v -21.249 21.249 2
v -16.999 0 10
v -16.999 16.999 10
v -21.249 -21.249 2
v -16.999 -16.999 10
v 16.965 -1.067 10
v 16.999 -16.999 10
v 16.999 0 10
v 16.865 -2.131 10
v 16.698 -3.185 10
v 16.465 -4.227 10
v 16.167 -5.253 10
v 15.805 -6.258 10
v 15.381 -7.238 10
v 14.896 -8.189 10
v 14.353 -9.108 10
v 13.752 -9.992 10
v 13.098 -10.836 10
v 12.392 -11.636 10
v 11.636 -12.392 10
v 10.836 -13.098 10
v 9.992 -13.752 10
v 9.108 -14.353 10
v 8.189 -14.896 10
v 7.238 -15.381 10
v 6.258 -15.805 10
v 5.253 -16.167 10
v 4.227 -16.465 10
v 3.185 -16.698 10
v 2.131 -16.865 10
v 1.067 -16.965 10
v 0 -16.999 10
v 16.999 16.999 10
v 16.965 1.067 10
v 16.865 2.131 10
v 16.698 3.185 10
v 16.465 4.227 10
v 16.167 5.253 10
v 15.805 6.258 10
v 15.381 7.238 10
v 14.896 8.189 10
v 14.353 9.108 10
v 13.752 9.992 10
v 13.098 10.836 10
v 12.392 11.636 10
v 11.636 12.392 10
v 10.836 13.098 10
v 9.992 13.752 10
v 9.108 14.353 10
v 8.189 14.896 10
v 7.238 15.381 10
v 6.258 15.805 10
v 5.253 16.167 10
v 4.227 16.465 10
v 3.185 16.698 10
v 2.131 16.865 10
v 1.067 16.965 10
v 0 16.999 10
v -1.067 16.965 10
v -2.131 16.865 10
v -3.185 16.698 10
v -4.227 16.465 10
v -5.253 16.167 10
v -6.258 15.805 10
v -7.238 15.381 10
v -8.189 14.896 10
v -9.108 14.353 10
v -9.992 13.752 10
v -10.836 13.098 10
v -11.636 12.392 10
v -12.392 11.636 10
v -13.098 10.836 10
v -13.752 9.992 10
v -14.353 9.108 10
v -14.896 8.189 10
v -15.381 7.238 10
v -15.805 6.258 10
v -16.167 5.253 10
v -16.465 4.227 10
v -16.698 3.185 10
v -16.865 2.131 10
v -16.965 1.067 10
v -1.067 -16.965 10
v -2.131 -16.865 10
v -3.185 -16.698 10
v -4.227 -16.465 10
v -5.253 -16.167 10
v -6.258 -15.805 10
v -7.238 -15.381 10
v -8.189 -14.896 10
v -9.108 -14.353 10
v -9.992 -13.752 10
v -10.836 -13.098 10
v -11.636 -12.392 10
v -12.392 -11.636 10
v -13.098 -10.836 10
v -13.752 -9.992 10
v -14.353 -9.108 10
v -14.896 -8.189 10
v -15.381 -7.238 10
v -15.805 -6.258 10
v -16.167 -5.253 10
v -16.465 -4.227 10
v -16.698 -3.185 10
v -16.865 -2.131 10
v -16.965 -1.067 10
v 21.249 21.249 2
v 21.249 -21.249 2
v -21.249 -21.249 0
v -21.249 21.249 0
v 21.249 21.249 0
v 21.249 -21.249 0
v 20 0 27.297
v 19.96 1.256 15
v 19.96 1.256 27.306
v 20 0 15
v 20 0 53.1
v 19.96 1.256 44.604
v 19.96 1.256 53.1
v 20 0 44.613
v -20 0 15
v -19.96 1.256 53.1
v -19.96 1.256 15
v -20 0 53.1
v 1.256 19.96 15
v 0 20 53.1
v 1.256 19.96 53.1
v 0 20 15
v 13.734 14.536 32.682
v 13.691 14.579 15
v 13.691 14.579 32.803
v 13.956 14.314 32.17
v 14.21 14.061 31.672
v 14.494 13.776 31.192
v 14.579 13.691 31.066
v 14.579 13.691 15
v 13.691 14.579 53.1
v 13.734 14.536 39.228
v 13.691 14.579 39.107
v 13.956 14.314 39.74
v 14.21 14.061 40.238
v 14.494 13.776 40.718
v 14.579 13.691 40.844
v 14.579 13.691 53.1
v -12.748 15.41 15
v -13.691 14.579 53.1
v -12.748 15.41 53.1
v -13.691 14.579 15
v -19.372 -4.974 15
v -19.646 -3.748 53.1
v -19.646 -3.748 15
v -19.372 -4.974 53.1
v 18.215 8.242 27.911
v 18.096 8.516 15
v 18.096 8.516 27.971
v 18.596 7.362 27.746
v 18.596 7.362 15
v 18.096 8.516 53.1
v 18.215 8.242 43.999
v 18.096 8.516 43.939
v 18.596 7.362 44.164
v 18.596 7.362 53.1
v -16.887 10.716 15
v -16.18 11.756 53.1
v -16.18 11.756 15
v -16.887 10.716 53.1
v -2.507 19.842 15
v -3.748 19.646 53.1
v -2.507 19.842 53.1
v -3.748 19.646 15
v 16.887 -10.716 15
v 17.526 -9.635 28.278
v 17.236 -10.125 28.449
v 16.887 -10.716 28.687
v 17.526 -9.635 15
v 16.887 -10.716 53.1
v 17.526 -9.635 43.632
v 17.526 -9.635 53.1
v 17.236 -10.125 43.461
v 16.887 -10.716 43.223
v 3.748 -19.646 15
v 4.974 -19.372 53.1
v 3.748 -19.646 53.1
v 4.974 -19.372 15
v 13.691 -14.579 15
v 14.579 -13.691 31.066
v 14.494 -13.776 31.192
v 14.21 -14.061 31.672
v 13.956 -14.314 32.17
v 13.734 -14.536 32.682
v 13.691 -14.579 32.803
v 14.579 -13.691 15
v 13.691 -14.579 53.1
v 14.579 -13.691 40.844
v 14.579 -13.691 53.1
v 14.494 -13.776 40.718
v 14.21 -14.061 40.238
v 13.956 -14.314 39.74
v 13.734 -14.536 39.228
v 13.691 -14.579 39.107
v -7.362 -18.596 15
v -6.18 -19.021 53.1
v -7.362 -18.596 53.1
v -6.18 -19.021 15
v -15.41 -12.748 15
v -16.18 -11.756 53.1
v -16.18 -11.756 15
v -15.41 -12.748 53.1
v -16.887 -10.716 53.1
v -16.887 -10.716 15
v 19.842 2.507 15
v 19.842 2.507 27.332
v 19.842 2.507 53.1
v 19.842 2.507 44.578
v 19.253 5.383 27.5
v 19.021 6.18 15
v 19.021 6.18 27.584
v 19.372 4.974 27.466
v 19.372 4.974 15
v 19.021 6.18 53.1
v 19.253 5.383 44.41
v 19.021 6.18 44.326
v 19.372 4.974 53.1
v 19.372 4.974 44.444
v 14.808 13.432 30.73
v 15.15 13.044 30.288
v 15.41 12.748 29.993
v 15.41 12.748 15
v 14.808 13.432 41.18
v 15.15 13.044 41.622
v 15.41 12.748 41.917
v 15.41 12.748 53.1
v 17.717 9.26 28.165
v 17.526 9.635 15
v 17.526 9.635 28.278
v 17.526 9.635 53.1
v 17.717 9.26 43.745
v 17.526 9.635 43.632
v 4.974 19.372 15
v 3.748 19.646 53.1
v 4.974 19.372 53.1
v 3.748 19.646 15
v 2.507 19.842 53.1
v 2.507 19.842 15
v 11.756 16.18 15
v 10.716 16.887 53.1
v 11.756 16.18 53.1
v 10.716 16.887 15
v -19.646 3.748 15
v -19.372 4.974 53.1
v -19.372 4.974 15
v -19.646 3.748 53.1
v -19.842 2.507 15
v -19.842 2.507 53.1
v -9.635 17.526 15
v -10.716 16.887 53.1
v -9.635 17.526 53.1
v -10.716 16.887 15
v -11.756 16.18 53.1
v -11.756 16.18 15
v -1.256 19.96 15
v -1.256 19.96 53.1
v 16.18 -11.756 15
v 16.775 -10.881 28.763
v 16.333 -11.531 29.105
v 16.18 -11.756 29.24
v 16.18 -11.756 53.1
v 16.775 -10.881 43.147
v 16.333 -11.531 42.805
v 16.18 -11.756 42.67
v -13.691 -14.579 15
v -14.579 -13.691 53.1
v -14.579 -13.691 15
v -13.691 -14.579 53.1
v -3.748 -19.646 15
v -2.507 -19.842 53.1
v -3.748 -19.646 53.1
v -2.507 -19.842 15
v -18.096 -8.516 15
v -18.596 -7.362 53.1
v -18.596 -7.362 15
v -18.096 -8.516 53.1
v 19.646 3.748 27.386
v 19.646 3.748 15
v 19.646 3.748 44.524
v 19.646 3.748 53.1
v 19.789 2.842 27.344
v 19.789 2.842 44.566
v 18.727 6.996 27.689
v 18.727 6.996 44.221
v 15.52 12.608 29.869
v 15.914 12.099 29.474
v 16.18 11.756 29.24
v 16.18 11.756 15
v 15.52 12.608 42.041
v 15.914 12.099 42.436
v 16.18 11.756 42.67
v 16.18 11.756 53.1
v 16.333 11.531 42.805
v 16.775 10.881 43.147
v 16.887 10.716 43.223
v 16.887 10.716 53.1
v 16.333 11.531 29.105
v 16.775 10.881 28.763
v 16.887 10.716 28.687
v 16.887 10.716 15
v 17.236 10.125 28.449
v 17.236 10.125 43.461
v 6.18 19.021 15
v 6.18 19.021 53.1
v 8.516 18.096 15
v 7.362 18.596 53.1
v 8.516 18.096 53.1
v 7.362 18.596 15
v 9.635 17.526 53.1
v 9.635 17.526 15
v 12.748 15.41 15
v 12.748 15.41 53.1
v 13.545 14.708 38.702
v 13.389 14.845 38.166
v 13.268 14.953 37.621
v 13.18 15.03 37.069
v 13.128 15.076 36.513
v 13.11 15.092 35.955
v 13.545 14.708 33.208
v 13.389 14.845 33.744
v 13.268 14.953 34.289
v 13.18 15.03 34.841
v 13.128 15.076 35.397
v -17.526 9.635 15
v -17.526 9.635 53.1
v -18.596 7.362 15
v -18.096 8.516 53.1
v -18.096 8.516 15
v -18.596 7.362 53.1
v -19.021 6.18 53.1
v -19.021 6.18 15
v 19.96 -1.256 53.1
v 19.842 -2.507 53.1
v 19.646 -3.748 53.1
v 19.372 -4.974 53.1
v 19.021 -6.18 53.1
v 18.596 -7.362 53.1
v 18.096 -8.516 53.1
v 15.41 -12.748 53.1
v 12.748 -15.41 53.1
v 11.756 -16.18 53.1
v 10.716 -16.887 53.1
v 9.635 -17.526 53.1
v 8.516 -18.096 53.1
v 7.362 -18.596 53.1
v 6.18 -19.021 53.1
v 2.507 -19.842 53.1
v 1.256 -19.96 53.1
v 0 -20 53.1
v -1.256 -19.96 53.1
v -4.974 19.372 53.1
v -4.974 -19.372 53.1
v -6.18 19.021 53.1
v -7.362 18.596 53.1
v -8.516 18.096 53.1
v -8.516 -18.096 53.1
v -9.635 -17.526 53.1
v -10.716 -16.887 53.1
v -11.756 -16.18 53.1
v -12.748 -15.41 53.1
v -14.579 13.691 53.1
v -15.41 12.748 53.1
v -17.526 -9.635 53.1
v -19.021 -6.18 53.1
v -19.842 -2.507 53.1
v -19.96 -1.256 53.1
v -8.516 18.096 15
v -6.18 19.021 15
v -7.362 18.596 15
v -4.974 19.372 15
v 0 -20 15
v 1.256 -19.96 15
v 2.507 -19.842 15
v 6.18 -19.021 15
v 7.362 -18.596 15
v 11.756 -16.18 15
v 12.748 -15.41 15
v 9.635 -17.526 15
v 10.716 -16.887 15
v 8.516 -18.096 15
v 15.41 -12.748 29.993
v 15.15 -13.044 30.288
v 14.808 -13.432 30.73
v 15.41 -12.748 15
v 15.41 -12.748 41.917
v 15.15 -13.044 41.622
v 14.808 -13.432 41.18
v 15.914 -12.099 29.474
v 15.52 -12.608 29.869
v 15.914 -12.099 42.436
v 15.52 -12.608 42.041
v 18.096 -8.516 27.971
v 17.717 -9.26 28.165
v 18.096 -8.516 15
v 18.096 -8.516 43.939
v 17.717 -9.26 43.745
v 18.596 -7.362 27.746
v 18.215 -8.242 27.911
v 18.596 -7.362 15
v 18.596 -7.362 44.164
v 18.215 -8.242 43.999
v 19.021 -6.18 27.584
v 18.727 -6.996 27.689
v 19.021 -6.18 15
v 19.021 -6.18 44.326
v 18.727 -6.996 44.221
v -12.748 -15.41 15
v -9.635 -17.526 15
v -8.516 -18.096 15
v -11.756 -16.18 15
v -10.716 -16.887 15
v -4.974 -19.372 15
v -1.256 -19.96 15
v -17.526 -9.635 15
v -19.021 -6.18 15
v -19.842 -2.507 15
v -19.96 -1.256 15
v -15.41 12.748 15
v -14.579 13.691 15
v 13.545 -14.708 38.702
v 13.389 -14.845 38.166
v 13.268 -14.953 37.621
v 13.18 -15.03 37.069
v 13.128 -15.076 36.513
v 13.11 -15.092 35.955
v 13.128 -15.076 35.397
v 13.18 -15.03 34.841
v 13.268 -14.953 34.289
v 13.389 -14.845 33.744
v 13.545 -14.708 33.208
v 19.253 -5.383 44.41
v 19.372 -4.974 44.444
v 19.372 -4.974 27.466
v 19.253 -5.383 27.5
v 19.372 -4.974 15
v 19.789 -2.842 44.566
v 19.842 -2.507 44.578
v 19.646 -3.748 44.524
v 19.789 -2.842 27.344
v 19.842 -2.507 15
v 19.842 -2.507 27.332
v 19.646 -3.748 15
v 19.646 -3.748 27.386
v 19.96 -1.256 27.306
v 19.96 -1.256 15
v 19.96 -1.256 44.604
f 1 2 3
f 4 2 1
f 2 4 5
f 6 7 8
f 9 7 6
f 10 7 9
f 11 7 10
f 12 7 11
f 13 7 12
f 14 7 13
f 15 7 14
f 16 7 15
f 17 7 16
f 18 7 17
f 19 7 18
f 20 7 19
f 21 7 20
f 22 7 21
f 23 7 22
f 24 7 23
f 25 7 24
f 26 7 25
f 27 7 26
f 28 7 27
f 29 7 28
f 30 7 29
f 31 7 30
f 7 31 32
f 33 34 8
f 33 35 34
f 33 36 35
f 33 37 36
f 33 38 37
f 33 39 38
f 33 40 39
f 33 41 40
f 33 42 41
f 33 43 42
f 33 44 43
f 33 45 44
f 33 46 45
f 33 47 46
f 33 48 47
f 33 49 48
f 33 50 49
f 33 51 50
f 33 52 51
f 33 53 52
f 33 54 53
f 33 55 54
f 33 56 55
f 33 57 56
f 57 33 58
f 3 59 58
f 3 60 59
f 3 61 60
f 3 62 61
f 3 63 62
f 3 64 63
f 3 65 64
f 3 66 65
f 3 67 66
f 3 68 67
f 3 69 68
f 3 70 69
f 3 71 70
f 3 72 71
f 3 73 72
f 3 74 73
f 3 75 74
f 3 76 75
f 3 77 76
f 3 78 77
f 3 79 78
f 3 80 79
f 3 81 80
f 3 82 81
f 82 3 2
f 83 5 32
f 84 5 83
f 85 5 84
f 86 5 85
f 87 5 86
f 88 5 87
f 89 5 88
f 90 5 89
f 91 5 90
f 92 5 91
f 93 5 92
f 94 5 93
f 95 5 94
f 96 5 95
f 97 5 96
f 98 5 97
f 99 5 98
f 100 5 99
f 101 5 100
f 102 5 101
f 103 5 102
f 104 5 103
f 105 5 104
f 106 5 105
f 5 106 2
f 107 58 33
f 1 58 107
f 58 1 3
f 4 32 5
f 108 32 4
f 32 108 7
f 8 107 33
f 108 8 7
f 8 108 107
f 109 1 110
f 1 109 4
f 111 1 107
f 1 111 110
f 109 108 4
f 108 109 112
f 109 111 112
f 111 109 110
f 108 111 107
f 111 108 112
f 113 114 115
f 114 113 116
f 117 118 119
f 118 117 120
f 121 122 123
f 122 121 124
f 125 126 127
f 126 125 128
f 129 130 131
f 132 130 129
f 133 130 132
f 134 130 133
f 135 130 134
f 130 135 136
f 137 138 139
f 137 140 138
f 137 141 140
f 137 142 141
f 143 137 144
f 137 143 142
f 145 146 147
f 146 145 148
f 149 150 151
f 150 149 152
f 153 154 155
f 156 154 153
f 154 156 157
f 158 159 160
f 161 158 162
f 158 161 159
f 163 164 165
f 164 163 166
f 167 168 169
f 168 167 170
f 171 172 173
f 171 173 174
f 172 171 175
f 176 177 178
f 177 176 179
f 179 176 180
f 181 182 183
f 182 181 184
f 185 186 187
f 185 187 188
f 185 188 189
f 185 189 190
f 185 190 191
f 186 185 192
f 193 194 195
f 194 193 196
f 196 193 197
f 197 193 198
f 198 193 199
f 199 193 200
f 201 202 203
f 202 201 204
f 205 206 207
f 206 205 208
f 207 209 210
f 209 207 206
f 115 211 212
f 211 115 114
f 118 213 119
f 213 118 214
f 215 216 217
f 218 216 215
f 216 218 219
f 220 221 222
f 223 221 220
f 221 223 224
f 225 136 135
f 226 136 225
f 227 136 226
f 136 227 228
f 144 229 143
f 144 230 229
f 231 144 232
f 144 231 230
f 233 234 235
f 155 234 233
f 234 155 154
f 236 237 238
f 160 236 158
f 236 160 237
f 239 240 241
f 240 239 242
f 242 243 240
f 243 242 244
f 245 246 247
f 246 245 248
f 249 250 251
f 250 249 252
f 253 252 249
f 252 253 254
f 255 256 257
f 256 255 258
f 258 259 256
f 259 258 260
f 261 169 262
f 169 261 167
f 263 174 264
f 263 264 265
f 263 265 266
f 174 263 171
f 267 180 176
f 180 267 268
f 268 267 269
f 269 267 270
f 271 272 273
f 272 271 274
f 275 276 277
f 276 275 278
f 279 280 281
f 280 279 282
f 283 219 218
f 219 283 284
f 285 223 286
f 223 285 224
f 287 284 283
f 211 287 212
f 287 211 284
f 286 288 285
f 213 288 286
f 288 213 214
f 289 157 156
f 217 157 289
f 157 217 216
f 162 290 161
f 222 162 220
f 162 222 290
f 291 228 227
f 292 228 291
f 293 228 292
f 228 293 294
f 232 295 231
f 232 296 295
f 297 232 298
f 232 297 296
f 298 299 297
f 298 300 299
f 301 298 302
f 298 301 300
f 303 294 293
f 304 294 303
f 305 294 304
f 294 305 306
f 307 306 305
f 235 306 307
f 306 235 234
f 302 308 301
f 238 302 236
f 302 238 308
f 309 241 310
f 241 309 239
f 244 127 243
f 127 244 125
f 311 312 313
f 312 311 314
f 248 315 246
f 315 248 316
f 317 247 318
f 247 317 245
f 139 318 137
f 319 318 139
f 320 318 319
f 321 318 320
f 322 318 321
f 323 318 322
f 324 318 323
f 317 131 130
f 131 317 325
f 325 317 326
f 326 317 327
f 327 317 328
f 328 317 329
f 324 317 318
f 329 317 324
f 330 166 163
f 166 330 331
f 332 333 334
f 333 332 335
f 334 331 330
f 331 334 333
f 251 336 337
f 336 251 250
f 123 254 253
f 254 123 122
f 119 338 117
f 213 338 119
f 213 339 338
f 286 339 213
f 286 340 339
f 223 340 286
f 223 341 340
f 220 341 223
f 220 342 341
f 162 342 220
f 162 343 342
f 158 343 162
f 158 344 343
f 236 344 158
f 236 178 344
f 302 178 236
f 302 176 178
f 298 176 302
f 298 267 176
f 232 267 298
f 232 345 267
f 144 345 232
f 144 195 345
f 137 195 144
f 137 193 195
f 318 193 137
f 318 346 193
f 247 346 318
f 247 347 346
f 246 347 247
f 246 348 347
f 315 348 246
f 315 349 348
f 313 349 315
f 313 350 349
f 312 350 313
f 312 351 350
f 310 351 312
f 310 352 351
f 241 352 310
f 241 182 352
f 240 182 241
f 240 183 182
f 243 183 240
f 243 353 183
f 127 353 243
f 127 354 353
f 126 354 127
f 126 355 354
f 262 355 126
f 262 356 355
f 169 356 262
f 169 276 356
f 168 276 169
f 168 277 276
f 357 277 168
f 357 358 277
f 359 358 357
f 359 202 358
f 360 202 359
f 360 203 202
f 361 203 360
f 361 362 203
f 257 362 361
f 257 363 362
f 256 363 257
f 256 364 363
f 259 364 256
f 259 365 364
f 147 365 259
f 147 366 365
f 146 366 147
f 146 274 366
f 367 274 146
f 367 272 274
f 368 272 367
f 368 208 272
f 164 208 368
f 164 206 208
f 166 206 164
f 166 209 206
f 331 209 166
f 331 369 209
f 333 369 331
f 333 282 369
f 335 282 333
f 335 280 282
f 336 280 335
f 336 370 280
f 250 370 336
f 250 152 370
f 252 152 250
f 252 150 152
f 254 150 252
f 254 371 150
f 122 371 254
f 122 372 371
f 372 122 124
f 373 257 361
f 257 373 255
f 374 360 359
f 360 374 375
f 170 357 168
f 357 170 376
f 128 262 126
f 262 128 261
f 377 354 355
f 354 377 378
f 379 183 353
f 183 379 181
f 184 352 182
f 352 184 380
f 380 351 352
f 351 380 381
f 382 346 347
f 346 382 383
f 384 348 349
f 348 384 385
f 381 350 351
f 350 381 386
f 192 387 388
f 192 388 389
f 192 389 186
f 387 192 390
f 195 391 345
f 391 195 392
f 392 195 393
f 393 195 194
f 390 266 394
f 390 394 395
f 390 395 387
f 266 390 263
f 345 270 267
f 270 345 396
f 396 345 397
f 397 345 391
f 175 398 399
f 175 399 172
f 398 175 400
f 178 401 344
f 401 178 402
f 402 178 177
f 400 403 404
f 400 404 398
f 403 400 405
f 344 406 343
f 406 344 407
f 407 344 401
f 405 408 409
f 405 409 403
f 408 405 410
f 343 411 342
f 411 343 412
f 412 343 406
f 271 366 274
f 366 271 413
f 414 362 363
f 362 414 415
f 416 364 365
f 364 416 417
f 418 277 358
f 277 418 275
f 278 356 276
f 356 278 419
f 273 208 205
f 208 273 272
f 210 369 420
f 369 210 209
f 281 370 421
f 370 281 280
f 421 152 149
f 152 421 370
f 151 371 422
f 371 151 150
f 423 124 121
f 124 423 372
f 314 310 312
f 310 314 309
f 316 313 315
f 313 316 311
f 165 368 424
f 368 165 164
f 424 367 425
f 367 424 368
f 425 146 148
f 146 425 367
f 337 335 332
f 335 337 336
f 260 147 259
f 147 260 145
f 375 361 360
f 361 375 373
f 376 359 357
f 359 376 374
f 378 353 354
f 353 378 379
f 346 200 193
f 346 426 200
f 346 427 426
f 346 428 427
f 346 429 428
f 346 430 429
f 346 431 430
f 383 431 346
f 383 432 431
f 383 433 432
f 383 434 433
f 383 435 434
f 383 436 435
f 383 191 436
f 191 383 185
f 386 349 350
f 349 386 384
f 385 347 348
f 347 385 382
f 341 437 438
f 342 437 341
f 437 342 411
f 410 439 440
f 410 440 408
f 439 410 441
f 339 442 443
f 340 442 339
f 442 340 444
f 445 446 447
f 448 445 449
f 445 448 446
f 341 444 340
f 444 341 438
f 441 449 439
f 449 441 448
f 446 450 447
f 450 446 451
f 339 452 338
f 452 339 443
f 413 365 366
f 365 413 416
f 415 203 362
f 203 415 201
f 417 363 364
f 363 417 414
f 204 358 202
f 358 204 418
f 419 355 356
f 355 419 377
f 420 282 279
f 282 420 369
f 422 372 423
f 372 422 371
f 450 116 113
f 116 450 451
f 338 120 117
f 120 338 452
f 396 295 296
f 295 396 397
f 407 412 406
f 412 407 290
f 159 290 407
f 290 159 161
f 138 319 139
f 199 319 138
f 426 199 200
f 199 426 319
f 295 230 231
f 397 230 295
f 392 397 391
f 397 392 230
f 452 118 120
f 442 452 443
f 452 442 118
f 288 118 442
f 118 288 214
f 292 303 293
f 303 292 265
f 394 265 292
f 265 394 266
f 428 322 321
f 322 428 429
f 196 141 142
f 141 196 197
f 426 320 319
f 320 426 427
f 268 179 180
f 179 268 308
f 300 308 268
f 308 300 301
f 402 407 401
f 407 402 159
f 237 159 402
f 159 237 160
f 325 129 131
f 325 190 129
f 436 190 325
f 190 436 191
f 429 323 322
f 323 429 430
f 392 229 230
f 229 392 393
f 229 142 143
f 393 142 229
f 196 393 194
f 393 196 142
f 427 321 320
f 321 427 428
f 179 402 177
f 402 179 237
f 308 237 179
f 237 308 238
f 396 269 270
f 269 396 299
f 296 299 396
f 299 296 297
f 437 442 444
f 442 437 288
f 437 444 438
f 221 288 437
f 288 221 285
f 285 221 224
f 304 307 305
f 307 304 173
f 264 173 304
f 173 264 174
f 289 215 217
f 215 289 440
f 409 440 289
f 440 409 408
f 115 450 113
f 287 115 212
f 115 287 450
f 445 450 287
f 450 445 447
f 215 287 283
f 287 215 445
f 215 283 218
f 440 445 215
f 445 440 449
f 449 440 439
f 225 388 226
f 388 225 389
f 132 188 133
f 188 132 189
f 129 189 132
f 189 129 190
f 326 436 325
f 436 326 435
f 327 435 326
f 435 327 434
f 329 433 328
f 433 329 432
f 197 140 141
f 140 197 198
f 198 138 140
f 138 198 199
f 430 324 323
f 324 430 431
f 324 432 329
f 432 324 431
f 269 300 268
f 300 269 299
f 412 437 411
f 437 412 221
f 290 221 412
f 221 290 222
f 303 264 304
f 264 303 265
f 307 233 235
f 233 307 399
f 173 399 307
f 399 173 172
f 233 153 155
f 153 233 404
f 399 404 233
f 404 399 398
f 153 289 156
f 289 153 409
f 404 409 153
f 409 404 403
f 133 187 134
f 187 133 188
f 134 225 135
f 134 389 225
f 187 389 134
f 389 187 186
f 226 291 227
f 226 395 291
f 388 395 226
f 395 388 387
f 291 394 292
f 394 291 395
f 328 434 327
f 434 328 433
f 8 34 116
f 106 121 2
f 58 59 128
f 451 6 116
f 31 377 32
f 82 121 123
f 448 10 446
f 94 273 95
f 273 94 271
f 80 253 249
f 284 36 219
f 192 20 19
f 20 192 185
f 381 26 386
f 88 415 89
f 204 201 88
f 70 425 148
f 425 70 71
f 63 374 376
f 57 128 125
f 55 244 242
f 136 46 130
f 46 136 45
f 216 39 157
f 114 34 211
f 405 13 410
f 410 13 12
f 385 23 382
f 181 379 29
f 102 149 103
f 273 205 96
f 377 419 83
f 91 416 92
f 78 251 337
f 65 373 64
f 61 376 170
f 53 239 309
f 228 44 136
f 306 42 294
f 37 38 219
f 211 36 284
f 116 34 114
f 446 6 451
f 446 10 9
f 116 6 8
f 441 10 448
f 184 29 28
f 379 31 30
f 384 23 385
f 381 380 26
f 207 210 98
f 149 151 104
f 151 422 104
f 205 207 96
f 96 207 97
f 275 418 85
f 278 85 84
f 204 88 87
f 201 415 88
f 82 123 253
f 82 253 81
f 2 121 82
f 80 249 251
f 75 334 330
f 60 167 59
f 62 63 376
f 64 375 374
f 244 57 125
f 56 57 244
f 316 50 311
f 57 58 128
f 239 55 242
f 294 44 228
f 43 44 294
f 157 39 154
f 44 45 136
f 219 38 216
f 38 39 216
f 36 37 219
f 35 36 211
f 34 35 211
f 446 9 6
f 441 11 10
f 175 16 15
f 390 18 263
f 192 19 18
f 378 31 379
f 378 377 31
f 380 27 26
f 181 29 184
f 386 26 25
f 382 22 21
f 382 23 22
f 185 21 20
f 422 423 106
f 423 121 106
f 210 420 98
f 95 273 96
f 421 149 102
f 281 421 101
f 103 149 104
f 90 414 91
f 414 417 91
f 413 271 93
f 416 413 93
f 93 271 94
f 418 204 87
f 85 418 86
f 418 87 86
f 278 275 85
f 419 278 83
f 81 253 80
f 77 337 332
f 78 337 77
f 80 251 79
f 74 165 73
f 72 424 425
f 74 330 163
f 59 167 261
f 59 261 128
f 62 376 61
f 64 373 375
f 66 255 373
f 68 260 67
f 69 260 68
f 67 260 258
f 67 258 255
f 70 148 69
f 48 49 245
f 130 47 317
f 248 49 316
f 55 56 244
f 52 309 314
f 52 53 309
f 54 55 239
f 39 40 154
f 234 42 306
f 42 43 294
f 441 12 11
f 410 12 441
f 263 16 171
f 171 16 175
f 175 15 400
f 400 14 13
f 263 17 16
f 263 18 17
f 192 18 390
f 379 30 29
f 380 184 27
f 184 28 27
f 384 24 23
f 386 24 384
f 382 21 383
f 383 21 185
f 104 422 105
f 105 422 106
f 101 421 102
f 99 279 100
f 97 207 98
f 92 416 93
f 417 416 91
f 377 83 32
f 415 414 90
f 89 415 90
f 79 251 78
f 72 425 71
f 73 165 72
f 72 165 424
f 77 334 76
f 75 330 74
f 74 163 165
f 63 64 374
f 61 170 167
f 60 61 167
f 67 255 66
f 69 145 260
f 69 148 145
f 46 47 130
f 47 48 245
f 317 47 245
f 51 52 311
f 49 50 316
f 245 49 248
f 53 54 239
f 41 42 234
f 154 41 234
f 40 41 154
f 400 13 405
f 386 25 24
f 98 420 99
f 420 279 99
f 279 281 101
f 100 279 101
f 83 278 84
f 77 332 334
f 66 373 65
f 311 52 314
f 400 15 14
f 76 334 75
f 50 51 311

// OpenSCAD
module base(x1,x2,z){
union(){    
    translate([0,0,2])
    rotate([0,0,45])
        cylinder(z-2,x1/2,x2/2,$fn=4);
    rotate([0,0,45])
        cylinder(2,x1/2,x1/2,$fn=4);
}
}
module top(r,z){
    difference(){
        cylinder(z,r,r,$fn=100);
        translate([r+r/10,r,z-.7/4*25.4-.5*25.4])
        rotate([90,0,0])
        cylinder(r*2,25.4*.7/2,25.4*.7/2,$fn=100);
    }
}
module between(r1,r2,z){
    cylinder(z,r1,r2,$fn=100);
}


base(60.1,60.1-60.1/5,10);
translate([0,0,10])
between((60.1-60.1/5)/2/sqrt(2),40/2,5);
translate([0,0,10+5]) 
top(40/2,1.5*25.4);
